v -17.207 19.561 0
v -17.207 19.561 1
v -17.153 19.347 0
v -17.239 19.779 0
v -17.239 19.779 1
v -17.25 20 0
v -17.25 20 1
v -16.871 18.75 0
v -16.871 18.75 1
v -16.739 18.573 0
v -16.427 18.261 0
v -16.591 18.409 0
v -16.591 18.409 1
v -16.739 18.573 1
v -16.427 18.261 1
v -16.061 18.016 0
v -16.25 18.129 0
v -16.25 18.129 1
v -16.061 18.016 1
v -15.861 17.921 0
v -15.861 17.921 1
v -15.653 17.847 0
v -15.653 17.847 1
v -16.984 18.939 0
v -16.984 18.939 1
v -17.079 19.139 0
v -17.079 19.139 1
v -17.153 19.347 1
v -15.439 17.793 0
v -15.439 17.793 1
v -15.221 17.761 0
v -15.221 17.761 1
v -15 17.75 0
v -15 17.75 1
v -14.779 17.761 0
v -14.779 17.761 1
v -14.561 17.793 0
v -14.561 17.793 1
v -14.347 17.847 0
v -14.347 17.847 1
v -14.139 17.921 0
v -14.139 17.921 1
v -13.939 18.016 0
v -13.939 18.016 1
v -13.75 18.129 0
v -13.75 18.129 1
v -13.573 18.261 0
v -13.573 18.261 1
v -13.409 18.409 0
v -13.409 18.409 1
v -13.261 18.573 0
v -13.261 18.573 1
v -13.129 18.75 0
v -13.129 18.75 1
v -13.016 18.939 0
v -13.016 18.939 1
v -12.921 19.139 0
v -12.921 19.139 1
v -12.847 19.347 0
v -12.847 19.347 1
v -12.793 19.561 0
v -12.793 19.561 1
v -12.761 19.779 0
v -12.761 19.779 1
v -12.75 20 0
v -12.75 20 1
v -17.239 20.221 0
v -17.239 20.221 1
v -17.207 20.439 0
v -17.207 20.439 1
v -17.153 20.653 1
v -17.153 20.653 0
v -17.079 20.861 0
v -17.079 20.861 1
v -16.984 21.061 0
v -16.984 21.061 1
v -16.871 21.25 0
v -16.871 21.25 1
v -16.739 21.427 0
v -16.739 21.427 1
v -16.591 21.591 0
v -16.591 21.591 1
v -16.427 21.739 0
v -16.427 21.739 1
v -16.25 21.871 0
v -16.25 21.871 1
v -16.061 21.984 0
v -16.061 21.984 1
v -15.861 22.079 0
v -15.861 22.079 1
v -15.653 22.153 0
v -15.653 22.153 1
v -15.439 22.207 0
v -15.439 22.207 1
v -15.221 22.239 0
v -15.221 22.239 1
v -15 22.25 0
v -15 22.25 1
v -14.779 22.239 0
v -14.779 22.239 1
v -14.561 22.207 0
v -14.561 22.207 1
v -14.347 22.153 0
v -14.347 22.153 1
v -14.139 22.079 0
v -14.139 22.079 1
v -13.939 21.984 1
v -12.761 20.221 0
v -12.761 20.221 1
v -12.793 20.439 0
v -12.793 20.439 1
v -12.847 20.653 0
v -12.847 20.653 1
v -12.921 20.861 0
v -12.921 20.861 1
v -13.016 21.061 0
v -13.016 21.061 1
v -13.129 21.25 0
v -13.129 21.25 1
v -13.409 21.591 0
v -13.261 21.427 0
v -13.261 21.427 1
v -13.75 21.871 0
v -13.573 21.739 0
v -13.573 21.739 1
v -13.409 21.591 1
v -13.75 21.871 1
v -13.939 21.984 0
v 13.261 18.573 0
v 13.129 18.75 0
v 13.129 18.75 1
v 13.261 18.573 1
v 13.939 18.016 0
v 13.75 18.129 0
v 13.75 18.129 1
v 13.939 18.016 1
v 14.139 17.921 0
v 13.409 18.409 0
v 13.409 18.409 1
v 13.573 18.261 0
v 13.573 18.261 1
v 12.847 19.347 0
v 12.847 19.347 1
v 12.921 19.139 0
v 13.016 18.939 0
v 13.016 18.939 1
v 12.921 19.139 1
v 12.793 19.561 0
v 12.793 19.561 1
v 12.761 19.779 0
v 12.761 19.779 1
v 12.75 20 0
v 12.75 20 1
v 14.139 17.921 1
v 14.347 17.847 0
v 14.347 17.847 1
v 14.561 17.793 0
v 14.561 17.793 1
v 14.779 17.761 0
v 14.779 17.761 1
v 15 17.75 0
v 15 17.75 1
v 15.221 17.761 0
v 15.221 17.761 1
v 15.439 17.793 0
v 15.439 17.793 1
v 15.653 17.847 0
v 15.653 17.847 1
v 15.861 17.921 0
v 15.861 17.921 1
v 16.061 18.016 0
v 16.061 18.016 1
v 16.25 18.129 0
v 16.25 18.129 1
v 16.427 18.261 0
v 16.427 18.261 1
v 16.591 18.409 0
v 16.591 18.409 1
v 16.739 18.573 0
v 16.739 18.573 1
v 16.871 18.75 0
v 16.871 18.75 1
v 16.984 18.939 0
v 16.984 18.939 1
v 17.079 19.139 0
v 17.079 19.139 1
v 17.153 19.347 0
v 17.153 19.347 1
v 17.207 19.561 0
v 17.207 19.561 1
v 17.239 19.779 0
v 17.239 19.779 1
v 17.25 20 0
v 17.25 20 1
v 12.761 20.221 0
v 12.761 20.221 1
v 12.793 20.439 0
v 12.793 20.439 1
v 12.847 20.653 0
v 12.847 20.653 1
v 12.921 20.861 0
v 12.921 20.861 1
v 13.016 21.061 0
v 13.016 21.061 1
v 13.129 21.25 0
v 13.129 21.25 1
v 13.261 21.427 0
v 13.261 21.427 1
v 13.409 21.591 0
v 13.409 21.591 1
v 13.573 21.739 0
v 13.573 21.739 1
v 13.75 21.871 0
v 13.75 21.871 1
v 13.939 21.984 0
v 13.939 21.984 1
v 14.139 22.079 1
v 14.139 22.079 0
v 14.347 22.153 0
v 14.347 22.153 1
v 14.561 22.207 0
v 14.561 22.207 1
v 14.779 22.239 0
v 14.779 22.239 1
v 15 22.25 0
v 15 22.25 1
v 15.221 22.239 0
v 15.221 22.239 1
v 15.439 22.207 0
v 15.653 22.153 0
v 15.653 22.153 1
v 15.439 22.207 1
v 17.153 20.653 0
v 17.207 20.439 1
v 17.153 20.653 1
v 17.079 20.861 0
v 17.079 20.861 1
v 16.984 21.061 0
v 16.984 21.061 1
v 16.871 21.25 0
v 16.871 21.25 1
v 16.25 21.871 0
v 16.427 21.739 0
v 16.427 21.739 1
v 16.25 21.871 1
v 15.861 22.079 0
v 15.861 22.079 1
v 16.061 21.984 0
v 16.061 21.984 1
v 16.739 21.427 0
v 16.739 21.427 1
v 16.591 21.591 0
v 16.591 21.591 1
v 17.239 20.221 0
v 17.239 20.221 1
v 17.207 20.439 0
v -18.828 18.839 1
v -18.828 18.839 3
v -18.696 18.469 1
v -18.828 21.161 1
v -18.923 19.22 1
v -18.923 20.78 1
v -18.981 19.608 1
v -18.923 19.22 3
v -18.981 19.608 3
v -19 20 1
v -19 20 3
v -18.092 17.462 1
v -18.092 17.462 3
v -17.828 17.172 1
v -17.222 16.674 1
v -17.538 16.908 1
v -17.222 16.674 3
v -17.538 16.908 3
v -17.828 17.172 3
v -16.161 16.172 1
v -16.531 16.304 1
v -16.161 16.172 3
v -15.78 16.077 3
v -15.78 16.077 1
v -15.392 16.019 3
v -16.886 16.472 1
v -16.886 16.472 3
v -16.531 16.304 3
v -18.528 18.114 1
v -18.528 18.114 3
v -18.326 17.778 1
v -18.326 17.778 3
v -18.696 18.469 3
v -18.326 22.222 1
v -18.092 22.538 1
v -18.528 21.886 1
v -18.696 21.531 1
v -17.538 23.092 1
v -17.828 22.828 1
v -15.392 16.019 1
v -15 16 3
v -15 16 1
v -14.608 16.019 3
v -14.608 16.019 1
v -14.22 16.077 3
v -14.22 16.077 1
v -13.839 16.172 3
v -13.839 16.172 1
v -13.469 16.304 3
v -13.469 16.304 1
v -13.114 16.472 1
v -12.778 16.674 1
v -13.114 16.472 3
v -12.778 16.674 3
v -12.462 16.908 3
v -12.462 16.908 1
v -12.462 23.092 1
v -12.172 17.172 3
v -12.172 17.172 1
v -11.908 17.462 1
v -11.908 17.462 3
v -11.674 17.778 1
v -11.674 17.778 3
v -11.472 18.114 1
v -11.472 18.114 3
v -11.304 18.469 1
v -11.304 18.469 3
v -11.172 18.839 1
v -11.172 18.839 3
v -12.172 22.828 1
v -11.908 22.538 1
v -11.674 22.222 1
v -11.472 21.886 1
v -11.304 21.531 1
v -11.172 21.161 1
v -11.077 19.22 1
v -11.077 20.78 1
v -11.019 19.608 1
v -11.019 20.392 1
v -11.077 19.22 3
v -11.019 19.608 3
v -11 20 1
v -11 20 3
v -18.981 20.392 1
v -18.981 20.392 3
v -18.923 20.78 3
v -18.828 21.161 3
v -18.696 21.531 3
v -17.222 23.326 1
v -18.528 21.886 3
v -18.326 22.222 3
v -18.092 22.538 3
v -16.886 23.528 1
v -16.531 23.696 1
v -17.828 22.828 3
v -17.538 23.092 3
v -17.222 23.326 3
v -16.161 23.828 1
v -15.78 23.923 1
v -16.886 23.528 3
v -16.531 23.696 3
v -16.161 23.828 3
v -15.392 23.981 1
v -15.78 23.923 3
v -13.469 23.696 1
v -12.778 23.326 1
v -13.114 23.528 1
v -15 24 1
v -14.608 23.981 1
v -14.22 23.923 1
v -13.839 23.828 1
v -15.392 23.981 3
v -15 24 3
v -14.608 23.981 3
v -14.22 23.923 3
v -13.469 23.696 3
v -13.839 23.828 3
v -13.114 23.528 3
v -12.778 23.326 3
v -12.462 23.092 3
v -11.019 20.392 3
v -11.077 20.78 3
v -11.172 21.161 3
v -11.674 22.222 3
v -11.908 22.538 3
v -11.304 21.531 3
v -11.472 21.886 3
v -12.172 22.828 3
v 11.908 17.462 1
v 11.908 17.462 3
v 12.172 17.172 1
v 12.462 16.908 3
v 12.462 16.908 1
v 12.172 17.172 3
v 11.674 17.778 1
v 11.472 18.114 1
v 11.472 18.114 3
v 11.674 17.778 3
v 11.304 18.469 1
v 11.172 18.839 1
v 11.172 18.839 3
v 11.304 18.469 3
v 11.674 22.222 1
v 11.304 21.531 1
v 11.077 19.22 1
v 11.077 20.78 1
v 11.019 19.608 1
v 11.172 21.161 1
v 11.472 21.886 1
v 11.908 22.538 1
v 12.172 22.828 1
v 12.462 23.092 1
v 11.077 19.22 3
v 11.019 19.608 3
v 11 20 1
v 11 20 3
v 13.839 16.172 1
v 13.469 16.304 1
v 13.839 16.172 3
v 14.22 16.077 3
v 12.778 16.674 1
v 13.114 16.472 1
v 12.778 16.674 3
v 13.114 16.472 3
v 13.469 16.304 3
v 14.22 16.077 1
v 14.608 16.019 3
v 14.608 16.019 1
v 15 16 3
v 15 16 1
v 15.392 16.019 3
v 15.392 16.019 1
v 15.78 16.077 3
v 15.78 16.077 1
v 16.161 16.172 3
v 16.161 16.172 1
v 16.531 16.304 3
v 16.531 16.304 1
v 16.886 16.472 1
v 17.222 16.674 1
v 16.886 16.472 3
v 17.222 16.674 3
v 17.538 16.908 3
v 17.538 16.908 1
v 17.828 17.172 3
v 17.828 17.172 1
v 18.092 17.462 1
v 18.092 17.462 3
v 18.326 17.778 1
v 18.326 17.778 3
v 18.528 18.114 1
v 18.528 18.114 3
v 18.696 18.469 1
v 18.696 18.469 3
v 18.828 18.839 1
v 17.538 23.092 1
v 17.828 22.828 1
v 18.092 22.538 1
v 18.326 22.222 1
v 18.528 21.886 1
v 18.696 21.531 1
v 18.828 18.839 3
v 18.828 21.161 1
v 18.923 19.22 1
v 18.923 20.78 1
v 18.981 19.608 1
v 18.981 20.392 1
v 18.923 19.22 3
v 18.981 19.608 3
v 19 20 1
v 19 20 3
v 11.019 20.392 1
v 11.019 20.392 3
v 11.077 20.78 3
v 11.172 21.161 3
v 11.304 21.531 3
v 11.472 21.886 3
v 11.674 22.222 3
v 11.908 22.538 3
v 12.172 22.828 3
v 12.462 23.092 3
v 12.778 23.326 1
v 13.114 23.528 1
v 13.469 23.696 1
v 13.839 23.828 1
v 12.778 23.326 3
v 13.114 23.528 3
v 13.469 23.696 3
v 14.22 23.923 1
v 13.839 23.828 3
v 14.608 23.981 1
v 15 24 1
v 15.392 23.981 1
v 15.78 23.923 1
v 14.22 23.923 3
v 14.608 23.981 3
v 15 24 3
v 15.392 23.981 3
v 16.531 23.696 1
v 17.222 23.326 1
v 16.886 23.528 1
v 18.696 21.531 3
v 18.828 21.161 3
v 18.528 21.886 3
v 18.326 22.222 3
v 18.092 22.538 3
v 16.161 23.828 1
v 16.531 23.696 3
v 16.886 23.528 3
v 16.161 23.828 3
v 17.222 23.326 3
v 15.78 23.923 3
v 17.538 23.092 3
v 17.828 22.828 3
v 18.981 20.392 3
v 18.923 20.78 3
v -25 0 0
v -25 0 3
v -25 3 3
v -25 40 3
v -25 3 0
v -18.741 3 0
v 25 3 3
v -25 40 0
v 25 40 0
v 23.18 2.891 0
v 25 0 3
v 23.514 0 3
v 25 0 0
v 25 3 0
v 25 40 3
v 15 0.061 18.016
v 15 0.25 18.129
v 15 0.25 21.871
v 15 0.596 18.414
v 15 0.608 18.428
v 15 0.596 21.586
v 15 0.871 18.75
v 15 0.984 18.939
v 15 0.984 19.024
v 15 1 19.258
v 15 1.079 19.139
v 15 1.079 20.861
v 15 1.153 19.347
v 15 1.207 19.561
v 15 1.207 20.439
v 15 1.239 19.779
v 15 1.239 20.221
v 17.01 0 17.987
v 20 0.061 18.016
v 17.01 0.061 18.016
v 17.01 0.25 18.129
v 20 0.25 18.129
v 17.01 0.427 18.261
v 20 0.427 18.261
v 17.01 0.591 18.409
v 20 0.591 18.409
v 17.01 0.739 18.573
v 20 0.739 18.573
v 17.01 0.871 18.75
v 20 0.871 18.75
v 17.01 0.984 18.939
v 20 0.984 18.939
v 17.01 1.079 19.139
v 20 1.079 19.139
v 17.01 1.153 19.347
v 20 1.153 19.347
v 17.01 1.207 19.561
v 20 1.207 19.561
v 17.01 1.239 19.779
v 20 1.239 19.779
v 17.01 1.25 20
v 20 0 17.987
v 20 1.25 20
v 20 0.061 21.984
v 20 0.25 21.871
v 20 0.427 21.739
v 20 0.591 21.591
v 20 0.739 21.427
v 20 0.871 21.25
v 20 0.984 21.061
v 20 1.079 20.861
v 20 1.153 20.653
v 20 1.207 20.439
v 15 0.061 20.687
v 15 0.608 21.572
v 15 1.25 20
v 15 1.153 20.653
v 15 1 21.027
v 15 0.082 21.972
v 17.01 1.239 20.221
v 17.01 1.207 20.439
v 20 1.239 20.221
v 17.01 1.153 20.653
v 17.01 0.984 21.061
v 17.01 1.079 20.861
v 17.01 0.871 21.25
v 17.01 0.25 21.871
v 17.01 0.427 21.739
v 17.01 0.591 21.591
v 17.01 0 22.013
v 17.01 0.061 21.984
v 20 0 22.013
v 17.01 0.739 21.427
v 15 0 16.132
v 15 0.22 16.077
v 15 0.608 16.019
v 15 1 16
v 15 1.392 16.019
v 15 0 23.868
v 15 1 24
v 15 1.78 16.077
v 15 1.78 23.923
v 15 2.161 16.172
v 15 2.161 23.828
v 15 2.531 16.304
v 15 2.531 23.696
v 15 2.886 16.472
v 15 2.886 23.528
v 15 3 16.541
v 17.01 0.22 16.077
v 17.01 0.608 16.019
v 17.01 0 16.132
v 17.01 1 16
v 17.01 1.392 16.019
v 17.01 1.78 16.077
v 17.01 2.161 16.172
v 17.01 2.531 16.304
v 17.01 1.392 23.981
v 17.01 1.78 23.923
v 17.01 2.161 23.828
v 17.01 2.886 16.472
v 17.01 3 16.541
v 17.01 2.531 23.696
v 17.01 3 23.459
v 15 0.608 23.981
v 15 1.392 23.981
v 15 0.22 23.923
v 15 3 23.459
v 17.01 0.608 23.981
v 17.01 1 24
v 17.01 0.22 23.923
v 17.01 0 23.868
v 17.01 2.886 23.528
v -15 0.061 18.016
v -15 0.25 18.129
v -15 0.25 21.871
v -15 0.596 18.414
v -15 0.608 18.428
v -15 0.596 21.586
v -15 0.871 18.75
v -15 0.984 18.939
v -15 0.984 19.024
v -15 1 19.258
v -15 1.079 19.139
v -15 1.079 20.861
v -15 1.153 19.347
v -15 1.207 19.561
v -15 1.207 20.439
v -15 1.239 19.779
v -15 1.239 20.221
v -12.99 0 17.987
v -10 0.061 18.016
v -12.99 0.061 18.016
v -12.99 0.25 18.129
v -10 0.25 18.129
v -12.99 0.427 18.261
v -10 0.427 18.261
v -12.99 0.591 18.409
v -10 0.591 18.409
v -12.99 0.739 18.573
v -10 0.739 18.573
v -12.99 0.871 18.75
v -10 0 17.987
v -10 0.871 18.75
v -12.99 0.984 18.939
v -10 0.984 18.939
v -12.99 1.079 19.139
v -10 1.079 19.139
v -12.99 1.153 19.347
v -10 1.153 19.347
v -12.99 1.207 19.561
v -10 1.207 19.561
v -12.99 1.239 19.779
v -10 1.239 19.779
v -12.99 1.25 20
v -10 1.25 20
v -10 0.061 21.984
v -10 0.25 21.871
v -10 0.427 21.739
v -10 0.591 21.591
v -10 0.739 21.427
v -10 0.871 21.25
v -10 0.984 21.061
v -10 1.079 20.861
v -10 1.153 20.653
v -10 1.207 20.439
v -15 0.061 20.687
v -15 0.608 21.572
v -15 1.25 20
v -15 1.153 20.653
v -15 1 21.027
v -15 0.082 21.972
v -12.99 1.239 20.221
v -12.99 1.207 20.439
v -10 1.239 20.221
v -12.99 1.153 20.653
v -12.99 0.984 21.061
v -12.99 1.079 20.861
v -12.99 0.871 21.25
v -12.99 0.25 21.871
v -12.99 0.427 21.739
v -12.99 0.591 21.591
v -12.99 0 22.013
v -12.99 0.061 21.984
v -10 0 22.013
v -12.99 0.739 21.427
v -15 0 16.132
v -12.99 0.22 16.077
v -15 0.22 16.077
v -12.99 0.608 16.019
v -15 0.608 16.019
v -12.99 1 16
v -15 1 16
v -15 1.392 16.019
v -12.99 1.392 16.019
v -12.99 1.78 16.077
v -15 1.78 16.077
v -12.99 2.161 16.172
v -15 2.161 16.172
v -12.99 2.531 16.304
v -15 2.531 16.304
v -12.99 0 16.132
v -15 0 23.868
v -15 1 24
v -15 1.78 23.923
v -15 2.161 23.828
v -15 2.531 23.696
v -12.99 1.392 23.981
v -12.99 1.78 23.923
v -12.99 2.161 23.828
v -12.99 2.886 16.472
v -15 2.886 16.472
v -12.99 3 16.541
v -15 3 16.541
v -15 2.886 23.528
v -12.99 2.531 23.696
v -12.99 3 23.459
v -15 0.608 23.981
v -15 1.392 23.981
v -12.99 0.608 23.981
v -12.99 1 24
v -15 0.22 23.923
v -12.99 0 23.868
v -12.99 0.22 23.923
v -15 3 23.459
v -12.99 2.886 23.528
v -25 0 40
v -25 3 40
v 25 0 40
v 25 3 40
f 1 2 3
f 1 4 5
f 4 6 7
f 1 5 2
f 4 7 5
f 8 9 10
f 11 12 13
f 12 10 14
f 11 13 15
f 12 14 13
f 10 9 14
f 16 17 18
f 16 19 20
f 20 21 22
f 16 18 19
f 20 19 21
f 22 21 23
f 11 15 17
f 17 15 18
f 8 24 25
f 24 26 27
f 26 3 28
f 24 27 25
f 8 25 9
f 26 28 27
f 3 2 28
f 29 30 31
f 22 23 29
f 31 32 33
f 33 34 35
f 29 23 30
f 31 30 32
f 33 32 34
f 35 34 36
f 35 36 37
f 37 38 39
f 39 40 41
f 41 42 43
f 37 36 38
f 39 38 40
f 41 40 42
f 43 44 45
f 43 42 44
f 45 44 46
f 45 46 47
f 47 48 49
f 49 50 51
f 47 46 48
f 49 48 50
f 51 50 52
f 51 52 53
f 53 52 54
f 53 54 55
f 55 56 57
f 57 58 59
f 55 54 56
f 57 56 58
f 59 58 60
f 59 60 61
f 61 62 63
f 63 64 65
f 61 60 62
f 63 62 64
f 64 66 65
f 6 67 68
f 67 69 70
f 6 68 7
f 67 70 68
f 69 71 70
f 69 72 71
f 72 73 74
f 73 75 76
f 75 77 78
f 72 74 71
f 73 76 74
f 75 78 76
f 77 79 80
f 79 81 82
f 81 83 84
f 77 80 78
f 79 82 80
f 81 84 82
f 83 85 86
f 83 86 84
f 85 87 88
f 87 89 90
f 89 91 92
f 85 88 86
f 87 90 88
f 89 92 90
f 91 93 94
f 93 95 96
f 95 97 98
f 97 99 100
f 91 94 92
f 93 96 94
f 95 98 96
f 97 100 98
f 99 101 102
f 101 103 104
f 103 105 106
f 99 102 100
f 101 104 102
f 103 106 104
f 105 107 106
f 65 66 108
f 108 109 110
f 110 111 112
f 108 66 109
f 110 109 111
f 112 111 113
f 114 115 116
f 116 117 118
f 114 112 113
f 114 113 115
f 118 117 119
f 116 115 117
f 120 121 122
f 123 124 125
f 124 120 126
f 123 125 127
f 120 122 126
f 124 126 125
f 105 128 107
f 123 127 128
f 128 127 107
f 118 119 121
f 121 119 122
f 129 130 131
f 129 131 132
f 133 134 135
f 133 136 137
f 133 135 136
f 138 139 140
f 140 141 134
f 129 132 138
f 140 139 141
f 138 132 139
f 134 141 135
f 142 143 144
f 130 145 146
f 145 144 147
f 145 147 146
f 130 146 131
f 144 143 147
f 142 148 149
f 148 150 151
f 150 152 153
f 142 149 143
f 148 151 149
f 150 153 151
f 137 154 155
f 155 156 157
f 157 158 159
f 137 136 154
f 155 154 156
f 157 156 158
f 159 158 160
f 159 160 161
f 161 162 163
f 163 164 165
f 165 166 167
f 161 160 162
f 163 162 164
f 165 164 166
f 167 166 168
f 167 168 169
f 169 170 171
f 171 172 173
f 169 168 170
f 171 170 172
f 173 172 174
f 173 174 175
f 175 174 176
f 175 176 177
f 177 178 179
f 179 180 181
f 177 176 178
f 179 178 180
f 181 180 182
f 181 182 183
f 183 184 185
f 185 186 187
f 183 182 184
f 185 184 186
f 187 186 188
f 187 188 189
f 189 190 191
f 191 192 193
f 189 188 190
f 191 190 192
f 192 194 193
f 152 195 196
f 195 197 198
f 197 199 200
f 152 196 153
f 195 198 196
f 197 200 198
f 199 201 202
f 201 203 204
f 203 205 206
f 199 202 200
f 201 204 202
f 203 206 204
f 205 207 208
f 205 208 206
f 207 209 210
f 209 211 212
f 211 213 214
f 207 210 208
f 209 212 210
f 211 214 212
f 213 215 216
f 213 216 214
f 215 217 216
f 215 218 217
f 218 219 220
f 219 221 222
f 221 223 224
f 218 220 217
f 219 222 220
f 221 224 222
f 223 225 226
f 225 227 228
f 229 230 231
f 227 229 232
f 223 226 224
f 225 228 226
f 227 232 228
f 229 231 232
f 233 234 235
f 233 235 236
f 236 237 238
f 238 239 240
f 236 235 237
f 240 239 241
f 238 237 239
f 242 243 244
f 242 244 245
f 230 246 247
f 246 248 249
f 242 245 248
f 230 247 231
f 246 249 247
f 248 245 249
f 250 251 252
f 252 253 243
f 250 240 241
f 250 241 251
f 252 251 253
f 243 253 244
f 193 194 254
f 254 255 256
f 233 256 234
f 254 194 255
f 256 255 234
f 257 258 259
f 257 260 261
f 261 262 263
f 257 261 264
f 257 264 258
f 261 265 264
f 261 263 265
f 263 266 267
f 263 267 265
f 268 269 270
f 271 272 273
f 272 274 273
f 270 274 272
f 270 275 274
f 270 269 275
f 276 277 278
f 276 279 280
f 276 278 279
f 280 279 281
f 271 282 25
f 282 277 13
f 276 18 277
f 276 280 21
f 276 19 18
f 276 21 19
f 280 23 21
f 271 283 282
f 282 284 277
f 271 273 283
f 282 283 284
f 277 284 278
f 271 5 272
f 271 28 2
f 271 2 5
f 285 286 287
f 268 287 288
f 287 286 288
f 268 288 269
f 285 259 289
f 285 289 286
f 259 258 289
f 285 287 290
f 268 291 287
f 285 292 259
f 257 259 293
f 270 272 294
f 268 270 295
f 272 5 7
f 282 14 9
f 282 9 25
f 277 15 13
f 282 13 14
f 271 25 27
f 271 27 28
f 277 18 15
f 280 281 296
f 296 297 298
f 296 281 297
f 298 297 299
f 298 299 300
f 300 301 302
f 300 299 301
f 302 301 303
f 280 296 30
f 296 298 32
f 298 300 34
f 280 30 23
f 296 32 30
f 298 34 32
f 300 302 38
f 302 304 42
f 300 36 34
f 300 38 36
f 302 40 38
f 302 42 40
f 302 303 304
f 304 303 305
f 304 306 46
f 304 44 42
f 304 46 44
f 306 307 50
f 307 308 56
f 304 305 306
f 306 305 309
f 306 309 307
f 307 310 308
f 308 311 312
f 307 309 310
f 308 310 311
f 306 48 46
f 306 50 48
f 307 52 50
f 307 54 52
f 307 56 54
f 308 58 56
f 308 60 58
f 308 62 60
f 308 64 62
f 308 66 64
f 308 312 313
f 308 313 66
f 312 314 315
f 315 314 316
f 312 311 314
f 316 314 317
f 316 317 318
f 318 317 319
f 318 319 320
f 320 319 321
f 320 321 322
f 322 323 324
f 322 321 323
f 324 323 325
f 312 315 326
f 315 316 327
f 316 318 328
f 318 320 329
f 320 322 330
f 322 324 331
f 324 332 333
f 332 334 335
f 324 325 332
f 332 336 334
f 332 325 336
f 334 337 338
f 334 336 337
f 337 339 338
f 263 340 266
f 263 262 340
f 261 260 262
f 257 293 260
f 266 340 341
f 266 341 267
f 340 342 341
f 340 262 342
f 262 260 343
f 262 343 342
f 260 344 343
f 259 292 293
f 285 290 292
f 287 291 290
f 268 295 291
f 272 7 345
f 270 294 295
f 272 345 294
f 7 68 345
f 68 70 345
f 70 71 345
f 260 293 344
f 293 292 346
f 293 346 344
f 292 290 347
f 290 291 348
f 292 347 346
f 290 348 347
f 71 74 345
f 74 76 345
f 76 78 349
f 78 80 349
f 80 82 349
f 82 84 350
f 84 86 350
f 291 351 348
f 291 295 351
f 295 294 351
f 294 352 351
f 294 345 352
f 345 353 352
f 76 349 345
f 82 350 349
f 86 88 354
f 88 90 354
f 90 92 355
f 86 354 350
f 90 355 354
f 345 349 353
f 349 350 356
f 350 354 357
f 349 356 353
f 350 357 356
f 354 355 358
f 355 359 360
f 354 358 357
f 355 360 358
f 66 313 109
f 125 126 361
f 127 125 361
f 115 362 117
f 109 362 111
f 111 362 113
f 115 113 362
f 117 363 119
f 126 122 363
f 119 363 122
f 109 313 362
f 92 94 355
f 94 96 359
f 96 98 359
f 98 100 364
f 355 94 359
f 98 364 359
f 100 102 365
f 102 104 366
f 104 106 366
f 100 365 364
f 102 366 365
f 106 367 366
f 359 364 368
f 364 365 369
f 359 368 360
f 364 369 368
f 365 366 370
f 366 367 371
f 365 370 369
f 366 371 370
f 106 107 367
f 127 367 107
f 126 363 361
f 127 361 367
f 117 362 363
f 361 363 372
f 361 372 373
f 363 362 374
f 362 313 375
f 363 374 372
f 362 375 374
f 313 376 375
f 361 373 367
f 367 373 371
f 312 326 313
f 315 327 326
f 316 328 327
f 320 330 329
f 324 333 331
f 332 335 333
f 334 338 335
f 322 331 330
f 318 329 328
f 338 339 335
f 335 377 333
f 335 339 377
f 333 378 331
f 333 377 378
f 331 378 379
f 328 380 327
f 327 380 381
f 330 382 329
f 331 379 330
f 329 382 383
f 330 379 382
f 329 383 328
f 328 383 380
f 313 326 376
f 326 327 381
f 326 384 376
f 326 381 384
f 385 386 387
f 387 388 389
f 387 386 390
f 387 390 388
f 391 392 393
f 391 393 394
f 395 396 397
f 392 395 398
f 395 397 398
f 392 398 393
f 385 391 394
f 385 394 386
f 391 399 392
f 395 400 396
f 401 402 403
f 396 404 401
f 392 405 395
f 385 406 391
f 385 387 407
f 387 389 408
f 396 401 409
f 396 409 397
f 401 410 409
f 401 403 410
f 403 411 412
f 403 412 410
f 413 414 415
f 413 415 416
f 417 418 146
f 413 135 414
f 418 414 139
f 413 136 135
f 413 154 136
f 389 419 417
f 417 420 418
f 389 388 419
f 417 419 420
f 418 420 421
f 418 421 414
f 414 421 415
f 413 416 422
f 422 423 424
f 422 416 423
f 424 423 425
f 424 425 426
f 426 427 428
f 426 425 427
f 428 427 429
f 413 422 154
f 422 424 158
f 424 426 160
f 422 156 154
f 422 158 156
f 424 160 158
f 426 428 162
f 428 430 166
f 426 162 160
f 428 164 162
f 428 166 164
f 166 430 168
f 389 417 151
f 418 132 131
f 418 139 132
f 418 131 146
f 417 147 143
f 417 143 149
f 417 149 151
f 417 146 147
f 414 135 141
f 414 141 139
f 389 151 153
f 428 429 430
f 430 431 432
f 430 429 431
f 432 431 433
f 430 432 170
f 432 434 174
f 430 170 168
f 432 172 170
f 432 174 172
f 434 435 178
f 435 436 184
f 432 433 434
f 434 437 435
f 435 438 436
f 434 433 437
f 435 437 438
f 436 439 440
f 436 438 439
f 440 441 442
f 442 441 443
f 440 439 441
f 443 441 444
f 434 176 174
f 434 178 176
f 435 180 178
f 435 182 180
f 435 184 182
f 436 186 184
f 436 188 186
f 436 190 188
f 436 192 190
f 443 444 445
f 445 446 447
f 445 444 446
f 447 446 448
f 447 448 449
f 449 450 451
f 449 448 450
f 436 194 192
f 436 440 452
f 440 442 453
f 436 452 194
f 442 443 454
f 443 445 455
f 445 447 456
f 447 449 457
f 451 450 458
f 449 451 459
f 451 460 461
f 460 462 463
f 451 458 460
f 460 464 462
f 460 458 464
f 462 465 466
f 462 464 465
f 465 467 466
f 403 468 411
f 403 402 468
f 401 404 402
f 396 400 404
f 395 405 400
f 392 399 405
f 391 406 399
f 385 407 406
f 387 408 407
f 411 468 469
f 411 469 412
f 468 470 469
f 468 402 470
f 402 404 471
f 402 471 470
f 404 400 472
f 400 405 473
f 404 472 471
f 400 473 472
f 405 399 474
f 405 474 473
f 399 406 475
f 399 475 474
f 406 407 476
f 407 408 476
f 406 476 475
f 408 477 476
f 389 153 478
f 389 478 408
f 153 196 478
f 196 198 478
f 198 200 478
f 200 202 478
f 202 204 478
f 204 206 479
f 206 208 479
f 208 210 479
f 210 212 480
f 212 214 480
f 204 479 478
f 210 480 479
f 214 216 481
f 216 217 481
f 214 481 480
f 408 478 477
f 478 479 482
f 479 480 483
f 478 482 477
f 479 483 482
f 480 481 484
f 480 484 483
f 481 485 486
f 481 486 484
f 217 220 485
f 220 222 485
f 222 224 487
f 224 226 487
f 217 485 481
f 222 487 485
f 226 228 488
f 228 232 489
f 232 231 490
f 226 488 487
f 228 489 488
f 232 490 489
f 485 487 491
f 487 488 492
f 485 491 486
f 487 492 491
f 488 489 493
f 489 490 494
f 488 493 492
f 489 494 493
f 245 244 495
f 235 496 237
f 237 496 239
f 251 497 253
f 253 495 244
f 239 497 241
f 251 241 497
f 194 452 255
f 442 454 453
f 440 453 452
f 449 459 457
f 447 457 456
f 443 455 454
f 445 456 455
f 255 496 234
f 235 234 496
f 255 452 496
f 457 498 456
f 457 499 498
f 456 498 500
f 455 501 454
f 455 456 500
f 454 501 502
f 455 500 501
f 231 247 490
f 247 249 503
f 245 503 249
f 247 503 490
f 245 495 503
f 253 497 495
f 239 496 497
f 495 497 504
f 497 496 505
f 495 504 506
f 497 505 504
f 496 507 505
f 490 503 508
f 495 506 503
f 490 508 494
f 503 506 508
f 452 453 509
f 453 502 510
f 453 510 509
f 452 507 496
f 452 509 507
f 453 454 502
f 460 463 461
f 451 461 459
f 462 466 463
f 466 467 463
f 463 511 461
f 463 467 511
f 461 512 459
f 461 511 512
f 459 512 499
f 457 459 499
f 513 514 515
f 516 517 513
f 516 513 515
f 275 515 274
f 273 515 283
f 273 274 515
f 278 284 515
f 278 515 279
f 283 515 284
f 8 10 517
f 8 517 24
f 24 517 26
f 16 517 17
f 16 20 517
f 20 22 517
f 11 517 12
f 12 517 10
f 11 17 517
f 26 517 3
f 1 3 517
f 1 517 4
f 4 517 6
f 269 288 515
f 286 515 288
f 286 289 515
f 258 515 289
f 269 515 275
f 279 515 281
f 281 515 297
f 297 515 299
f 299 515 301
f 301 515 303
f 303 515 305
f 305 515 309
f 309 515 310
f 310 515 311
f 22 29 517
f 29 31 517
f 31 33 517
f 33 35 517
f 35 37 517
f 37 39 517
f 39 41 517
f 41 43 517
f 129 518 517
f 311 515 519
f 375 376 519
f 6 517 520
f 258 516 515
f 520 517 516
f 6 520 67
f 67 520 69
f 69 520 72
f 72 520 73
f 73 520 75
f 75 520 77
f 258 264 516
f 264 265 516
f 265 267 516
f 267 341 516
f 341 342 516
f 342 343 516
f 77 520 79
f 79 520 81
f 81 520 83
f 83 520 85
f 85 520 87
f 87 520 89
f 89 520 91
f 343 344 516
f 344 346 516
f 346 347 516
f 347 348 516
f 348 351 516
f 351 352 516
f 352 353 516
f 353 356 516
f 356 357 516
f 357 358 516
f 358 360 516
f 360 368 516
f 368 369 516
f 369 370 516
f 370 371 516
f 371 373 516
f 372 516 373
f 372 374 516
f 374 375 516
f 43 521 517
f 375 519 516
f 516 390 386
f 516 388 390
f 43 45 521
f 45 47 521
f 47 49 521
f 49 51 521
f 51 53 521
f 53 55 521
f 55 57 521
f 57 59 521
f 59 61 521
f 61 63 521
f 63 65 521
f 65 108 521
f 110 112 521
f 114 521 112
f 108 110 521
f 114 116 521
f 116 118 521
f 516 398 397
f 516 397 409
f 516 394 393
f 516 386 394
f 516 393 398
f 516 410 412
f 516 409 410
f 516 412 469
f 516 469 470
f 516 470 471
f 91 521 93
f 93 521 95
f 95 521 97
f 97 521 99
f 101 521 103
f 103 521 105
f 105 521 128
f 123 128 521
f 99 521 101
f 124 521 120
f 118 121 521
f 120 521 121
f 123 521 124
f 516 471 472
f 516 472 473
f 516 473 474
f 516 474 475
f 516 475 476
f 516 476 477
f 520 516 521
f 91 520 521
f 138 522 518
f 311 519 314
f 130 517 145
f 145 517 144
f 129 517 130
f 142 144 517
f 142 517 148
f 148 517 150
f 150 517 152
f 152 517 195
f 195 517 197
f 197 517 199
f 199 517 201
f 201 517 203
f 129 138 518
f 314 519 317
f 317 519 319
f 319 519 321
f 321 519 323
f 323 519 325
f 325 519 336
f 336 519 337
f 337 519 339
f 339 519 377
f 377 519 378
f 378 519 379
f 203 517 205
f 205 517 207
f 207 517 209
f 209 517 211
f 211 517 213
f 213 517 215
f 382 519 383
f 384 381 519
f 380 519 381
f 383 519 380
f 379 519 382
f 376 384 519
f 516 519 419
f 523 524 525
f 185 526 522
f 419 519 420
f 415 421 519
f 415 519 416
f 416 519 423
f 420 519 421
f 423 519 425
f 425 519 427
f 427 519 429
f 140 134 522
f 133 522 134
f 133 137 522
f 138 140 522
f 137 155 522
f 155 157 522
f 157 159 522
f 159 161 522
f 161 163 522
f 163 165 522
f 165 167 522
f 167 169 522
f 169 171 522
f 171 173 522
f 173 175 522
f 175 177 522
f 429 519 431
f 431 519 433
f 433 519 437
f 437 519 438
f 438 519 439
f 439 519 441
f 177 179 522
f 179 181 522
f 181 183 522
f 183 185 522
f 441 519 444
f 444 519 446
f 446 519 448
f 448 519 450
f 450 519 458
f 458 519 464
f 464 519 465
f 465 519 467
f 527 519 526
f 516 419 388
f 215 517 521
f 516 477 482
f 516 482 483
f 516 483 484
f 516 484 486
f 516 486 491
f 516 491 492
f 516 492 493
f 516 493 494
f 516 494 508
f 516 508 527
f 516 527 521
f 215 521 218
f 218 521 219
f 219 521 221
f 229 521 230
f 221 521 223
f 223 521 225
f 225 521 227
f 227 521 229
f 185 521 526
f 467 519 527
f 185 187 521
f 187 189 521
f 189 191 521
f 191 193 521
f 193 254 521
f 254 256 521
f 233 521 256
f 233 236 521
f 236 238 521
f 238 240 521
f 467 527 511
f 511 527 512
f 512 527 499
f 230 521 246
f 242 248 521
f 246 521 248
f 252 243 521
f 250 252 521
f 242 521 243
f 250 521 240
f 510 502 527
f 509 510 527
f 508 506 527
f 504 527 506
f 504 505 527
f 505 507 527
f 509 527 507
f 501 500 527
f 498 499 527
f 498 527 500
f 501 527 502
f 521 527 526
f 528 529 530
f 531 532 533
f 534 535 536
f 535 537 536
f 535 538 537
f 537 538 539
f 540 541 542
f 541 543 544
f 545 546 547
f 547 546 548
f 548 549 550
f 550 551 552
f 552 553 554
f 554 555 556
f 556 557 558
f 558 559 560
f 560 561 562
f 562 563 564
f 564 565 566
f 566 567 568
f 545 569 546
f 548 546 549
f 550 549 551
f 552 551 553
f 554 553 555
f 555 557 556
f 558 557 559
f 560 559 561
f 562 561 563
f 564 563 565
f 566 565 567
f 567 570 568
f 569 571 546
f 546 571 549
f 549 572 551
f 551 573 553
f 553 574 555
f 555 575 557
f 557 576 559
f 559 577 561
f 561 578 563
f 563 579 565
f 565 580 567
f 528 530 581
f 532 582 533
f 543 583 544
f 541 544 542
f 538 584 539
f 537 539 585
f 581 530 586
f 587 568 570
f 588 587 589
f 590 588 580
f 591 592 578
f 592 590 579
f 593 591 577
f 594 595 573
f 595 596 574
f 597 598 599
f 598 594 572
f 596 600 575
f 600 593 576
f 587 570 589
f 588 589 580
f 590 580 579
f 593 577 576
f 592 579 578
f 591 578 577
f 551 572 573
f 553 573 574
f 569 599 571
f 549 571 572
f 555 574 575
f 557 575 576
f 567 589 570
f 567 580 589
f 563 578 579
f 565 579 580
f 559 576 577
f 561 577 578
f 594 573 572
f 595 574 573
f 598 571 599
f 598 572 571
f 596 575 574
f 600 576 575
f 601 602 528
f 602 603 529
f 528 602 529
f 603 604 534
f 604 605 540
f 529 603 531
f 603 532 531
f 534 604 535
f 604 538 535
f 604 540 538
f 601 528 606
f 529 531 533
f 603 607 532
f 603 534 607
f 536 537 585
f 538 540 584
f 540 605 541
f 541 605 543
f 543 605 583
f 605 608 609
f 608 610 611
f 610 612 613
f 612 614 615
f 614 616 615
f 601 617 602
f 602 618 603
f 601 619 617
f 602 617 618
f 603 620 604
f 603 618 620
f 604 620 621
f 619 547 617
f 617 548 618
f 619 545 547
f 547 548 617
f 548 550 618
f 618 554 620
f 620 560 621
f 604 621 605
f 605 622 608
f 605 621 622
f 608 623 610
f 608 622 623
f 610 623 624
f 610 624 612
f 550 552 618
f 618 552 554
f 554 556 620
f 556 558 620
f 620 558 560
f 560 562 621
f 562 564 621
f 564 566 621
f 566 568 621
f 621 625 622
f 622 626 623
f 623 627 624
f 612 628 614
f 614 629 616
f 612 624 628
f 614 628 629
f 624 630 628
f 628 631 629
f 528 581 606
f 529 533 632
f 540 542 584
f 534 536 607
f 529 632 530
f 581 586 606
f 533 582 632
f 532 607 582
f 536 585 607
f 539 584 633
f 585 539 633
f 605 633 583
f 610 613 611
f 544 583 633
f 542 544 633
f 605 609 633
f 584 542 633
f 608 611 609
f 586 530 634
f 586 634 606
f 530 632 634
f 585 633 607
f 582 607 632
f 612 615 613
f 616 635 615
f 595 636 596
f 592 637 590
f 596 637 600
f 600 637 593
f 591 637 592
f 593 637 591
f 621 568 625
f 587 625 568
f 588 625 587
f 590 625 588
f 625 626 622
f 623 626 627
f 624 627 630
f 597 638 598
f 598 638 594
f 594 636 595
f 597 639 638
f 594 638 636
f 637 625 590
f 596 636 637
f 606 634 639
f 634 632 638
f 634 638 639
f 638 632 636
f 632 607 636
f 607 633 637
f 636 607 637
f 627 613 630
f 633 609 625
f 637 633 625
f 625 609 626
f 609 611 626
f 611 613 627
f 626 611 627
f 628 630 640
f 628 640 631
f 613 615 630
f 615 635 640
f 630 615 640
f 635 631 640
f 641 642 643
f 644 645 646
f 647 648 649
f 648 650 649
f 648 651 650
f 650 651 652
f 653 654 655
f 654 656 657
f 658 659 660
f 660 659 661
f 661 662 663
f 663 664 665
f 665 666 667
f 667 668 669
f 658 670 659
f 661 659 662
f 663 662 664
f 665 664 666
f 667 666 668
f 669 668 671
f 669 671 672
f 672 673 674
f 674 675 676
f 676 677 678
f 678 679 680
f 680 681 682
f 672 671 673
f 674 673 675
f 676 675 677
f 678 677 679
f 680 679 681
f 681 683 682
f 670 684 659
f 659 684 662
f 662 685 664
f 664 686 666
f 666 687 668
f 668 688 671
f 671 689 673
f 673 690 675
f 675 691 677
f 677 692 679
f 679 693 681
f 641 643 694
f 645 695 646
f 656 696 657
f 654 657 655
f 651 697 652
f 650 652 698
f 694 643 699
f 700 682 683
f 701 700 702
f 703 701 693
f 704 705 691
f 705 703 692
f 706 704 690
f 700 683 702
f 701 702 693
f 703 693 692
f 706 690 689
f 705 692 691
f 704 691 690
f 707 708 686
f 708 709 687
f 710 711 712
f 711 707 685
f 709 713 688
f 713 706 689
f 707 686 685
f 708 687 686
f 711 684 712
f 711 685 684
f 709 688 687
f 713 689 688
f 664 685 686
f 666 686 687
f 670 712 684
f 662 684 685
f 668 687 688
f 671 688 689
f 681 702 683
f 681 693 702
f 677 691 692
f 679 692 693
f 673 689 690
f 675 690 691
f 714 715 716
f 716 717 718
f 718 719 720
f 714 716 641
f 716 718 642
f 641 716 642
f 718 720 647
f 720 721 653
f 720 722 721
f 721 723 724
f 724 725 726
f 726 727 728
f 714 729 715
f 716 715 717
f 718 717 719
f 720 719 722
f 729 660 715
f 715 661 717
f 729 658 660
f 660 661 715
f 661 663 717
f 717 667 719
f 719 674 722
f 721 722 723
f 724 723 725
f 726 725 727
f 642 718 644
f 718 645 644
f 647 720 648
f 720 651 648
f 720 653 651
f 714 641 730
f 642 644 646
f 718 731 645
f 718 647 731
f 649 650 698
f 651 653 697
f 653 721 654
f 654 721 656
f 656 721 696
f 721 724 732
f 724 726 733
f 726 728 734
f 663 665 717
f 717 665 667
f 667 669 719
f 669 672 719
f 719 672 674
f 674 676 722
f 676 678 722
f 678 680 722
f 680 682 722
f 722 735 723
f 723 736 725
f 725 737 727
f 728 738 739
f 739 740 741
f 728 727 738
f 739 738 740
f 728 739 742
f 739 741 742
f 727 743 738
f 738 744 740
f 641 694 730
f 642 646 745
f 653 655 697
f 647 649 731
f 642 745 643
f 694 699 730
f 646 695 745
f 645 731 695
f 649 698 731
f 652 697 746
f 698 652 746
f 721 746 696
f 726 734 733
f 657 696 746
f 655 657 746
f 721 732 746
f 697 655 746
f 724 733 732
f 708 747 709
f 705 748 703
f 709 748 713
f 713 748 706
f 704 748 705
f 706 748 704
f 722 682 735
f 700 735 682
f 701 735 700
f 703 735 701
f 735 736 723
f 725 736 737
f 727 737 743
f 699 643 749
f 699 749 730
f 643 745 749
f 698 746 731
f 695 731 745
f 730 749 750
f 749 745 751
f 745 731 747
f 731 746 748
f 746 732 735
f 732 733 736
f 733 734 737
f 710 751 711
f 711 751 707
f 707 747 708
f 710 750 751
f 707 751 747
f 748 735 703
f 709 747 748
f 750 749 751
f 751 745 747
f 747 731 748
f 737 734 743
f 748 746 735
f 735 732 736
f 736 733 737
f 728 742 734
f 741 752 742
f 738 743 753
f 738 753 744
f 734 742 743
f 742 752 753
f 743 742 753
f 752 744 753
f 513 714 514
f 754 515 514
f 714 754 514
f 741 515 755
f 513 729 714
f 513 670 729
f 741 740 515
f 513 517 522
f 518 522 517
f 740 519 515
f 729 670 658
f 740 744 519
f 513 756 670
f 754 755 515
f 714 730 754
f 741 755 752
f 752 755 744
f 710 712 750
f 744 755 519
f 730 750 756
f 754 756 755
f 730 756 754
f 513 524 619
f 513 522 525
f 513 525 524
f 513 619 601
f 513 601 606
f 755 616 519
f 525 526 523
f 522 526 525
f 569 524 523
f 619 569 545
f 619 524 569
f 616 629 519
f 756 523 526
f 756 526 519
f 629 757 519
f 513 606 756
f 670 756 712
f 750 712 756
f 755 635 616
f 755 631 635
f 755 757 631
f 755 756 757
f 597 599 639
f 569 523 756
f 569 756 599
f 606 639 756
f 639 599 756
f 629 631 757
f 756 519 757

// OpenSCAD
// L-bracket (OpenSCAD)
// Inner corner at origin: horizontal flange +Y, vertical flange +Z

$fn = 64;

th = 3;

w = 50;    // width (X)
d = 40;    // depth/length (Y for horizontal, Z for vertical)

hole_through = 4.5;  // clearance (M4)
countersink_d = 8;   // countersink diameter (head seat)
countersink_depth = 2;

module countersunk_m4_on_xy_surface(
    // Place hole on a surface in the XY plane (normal +Z)
    x, y,
    thickness_dir = "Zpos",  // unused (for clarity)
    plate_thickness = th
) {
    // Through hole (cyl oriented +Z)
    translate([x, y, -1])
        cylinder(h = plate_thickness + 2, d = hole_through);

    // Countersink seat on outer side (here: outer side is -Z, i.e., below the top surface)
    // For a surface whose normal is +Z, "outer side" is -Z.
    translate([x, y, plate_thickness - countersink_depth])
        cylinder(h = countersink_depth, d = countersink_d);
}

// Horizontal flange: lies in X-Y plane at Z=0..th, extends +Y
// Inner corner at origin: its corner is at (X=0..w, Y=0) and Z=0..th
// We'll center in X for symmetry: X from -w/2..+w/2
module horizontal_flange() {
    difference() {
        // Solid
        translate([-w/2, 0, 0])
            cube([w, d, th]);

        // Holes (2 holes along the centerline of each side, left-right symmetric in X)
        // Centerline along Y: y = d/2, but specified "on center line" and "10mm in from edge".
        // The "edges" refer to the X direction (left/right). So place at X = +/- (w/2 - 10)
        x1 = (w/2 - 10);
        y_center = d/2;

        // Outer side for horizontal flange: outside is the side facing -Z (bolt head side)
        // Our countersink seat should be on outer side (-Z) => we create seat from top surface downward (already done).
        // We'll add countersinks with seat on top at Z = th - depth (i.e., facing -Z).
        translate([ x1, y_center, 0 ]) {
            // Use helper with "surface normal +Z"
            countersunk_m4_on_xy_surface(0, 0);
        }
        translate([ -x1, y_center, 0 ]) {
            countersunk_m4_on_xy_surface(0, 0);
        }
    }
}

// Vertical flange: lies in X-Z plane at Y=0..??, extends +Z, attached at inner corner (Y=0)
// Place as rectangle in X-Z at Y=0..th, extends +Z to height d
module vertical_flange() {
    difference() {
        // Solid
        translate([-w/2, 0, 0])
            cube([w, th, d]);

        // Holes on this vertical face: specified "each face has 2 holes on its center line,
        // 10mm inward from the edges, left-right symmetric" -> inward refers to X edges.
        // Centerline along Z: z = d/2.
        x1 = (w/2 - 10);
        z_center = d/2;

        // For vertical flange, face normal is +Y/-Y, and "outer side" is the side where bolt head is.
        // We'll orient the countersink to face +Y (outer side), which corresponds to seating at Y = th - depth.
        // Implement by creating through hole along +Y and countersink from outer side at Y=th-depth.
        for (x = [ x1, -x1 ]) {
            translate([x, 0, z_center]) {
                // Through hole along Y
                translate([0, -1, 0])
                    rotate([0,90,0]) // rotate cylinder axis to align with Y
                        cylinder(h = th + 2, d = hole_through);

                // Countersink seat on outer side (+Y): create seat at Y = th - countersink_depth
                // Cylinder axis along Y (after rotation), positioned accordingly.
                translate([0, th - countersink_depth, 0])
                    rotate([0,90,0])
                        cylinder(h = countersink_depth + 0.01, d = countersink_d);
            }
        }
    }
}

// Build bracket: union of both flanges
union() {
    horizontal_flange();
    vertical_flange();
}
